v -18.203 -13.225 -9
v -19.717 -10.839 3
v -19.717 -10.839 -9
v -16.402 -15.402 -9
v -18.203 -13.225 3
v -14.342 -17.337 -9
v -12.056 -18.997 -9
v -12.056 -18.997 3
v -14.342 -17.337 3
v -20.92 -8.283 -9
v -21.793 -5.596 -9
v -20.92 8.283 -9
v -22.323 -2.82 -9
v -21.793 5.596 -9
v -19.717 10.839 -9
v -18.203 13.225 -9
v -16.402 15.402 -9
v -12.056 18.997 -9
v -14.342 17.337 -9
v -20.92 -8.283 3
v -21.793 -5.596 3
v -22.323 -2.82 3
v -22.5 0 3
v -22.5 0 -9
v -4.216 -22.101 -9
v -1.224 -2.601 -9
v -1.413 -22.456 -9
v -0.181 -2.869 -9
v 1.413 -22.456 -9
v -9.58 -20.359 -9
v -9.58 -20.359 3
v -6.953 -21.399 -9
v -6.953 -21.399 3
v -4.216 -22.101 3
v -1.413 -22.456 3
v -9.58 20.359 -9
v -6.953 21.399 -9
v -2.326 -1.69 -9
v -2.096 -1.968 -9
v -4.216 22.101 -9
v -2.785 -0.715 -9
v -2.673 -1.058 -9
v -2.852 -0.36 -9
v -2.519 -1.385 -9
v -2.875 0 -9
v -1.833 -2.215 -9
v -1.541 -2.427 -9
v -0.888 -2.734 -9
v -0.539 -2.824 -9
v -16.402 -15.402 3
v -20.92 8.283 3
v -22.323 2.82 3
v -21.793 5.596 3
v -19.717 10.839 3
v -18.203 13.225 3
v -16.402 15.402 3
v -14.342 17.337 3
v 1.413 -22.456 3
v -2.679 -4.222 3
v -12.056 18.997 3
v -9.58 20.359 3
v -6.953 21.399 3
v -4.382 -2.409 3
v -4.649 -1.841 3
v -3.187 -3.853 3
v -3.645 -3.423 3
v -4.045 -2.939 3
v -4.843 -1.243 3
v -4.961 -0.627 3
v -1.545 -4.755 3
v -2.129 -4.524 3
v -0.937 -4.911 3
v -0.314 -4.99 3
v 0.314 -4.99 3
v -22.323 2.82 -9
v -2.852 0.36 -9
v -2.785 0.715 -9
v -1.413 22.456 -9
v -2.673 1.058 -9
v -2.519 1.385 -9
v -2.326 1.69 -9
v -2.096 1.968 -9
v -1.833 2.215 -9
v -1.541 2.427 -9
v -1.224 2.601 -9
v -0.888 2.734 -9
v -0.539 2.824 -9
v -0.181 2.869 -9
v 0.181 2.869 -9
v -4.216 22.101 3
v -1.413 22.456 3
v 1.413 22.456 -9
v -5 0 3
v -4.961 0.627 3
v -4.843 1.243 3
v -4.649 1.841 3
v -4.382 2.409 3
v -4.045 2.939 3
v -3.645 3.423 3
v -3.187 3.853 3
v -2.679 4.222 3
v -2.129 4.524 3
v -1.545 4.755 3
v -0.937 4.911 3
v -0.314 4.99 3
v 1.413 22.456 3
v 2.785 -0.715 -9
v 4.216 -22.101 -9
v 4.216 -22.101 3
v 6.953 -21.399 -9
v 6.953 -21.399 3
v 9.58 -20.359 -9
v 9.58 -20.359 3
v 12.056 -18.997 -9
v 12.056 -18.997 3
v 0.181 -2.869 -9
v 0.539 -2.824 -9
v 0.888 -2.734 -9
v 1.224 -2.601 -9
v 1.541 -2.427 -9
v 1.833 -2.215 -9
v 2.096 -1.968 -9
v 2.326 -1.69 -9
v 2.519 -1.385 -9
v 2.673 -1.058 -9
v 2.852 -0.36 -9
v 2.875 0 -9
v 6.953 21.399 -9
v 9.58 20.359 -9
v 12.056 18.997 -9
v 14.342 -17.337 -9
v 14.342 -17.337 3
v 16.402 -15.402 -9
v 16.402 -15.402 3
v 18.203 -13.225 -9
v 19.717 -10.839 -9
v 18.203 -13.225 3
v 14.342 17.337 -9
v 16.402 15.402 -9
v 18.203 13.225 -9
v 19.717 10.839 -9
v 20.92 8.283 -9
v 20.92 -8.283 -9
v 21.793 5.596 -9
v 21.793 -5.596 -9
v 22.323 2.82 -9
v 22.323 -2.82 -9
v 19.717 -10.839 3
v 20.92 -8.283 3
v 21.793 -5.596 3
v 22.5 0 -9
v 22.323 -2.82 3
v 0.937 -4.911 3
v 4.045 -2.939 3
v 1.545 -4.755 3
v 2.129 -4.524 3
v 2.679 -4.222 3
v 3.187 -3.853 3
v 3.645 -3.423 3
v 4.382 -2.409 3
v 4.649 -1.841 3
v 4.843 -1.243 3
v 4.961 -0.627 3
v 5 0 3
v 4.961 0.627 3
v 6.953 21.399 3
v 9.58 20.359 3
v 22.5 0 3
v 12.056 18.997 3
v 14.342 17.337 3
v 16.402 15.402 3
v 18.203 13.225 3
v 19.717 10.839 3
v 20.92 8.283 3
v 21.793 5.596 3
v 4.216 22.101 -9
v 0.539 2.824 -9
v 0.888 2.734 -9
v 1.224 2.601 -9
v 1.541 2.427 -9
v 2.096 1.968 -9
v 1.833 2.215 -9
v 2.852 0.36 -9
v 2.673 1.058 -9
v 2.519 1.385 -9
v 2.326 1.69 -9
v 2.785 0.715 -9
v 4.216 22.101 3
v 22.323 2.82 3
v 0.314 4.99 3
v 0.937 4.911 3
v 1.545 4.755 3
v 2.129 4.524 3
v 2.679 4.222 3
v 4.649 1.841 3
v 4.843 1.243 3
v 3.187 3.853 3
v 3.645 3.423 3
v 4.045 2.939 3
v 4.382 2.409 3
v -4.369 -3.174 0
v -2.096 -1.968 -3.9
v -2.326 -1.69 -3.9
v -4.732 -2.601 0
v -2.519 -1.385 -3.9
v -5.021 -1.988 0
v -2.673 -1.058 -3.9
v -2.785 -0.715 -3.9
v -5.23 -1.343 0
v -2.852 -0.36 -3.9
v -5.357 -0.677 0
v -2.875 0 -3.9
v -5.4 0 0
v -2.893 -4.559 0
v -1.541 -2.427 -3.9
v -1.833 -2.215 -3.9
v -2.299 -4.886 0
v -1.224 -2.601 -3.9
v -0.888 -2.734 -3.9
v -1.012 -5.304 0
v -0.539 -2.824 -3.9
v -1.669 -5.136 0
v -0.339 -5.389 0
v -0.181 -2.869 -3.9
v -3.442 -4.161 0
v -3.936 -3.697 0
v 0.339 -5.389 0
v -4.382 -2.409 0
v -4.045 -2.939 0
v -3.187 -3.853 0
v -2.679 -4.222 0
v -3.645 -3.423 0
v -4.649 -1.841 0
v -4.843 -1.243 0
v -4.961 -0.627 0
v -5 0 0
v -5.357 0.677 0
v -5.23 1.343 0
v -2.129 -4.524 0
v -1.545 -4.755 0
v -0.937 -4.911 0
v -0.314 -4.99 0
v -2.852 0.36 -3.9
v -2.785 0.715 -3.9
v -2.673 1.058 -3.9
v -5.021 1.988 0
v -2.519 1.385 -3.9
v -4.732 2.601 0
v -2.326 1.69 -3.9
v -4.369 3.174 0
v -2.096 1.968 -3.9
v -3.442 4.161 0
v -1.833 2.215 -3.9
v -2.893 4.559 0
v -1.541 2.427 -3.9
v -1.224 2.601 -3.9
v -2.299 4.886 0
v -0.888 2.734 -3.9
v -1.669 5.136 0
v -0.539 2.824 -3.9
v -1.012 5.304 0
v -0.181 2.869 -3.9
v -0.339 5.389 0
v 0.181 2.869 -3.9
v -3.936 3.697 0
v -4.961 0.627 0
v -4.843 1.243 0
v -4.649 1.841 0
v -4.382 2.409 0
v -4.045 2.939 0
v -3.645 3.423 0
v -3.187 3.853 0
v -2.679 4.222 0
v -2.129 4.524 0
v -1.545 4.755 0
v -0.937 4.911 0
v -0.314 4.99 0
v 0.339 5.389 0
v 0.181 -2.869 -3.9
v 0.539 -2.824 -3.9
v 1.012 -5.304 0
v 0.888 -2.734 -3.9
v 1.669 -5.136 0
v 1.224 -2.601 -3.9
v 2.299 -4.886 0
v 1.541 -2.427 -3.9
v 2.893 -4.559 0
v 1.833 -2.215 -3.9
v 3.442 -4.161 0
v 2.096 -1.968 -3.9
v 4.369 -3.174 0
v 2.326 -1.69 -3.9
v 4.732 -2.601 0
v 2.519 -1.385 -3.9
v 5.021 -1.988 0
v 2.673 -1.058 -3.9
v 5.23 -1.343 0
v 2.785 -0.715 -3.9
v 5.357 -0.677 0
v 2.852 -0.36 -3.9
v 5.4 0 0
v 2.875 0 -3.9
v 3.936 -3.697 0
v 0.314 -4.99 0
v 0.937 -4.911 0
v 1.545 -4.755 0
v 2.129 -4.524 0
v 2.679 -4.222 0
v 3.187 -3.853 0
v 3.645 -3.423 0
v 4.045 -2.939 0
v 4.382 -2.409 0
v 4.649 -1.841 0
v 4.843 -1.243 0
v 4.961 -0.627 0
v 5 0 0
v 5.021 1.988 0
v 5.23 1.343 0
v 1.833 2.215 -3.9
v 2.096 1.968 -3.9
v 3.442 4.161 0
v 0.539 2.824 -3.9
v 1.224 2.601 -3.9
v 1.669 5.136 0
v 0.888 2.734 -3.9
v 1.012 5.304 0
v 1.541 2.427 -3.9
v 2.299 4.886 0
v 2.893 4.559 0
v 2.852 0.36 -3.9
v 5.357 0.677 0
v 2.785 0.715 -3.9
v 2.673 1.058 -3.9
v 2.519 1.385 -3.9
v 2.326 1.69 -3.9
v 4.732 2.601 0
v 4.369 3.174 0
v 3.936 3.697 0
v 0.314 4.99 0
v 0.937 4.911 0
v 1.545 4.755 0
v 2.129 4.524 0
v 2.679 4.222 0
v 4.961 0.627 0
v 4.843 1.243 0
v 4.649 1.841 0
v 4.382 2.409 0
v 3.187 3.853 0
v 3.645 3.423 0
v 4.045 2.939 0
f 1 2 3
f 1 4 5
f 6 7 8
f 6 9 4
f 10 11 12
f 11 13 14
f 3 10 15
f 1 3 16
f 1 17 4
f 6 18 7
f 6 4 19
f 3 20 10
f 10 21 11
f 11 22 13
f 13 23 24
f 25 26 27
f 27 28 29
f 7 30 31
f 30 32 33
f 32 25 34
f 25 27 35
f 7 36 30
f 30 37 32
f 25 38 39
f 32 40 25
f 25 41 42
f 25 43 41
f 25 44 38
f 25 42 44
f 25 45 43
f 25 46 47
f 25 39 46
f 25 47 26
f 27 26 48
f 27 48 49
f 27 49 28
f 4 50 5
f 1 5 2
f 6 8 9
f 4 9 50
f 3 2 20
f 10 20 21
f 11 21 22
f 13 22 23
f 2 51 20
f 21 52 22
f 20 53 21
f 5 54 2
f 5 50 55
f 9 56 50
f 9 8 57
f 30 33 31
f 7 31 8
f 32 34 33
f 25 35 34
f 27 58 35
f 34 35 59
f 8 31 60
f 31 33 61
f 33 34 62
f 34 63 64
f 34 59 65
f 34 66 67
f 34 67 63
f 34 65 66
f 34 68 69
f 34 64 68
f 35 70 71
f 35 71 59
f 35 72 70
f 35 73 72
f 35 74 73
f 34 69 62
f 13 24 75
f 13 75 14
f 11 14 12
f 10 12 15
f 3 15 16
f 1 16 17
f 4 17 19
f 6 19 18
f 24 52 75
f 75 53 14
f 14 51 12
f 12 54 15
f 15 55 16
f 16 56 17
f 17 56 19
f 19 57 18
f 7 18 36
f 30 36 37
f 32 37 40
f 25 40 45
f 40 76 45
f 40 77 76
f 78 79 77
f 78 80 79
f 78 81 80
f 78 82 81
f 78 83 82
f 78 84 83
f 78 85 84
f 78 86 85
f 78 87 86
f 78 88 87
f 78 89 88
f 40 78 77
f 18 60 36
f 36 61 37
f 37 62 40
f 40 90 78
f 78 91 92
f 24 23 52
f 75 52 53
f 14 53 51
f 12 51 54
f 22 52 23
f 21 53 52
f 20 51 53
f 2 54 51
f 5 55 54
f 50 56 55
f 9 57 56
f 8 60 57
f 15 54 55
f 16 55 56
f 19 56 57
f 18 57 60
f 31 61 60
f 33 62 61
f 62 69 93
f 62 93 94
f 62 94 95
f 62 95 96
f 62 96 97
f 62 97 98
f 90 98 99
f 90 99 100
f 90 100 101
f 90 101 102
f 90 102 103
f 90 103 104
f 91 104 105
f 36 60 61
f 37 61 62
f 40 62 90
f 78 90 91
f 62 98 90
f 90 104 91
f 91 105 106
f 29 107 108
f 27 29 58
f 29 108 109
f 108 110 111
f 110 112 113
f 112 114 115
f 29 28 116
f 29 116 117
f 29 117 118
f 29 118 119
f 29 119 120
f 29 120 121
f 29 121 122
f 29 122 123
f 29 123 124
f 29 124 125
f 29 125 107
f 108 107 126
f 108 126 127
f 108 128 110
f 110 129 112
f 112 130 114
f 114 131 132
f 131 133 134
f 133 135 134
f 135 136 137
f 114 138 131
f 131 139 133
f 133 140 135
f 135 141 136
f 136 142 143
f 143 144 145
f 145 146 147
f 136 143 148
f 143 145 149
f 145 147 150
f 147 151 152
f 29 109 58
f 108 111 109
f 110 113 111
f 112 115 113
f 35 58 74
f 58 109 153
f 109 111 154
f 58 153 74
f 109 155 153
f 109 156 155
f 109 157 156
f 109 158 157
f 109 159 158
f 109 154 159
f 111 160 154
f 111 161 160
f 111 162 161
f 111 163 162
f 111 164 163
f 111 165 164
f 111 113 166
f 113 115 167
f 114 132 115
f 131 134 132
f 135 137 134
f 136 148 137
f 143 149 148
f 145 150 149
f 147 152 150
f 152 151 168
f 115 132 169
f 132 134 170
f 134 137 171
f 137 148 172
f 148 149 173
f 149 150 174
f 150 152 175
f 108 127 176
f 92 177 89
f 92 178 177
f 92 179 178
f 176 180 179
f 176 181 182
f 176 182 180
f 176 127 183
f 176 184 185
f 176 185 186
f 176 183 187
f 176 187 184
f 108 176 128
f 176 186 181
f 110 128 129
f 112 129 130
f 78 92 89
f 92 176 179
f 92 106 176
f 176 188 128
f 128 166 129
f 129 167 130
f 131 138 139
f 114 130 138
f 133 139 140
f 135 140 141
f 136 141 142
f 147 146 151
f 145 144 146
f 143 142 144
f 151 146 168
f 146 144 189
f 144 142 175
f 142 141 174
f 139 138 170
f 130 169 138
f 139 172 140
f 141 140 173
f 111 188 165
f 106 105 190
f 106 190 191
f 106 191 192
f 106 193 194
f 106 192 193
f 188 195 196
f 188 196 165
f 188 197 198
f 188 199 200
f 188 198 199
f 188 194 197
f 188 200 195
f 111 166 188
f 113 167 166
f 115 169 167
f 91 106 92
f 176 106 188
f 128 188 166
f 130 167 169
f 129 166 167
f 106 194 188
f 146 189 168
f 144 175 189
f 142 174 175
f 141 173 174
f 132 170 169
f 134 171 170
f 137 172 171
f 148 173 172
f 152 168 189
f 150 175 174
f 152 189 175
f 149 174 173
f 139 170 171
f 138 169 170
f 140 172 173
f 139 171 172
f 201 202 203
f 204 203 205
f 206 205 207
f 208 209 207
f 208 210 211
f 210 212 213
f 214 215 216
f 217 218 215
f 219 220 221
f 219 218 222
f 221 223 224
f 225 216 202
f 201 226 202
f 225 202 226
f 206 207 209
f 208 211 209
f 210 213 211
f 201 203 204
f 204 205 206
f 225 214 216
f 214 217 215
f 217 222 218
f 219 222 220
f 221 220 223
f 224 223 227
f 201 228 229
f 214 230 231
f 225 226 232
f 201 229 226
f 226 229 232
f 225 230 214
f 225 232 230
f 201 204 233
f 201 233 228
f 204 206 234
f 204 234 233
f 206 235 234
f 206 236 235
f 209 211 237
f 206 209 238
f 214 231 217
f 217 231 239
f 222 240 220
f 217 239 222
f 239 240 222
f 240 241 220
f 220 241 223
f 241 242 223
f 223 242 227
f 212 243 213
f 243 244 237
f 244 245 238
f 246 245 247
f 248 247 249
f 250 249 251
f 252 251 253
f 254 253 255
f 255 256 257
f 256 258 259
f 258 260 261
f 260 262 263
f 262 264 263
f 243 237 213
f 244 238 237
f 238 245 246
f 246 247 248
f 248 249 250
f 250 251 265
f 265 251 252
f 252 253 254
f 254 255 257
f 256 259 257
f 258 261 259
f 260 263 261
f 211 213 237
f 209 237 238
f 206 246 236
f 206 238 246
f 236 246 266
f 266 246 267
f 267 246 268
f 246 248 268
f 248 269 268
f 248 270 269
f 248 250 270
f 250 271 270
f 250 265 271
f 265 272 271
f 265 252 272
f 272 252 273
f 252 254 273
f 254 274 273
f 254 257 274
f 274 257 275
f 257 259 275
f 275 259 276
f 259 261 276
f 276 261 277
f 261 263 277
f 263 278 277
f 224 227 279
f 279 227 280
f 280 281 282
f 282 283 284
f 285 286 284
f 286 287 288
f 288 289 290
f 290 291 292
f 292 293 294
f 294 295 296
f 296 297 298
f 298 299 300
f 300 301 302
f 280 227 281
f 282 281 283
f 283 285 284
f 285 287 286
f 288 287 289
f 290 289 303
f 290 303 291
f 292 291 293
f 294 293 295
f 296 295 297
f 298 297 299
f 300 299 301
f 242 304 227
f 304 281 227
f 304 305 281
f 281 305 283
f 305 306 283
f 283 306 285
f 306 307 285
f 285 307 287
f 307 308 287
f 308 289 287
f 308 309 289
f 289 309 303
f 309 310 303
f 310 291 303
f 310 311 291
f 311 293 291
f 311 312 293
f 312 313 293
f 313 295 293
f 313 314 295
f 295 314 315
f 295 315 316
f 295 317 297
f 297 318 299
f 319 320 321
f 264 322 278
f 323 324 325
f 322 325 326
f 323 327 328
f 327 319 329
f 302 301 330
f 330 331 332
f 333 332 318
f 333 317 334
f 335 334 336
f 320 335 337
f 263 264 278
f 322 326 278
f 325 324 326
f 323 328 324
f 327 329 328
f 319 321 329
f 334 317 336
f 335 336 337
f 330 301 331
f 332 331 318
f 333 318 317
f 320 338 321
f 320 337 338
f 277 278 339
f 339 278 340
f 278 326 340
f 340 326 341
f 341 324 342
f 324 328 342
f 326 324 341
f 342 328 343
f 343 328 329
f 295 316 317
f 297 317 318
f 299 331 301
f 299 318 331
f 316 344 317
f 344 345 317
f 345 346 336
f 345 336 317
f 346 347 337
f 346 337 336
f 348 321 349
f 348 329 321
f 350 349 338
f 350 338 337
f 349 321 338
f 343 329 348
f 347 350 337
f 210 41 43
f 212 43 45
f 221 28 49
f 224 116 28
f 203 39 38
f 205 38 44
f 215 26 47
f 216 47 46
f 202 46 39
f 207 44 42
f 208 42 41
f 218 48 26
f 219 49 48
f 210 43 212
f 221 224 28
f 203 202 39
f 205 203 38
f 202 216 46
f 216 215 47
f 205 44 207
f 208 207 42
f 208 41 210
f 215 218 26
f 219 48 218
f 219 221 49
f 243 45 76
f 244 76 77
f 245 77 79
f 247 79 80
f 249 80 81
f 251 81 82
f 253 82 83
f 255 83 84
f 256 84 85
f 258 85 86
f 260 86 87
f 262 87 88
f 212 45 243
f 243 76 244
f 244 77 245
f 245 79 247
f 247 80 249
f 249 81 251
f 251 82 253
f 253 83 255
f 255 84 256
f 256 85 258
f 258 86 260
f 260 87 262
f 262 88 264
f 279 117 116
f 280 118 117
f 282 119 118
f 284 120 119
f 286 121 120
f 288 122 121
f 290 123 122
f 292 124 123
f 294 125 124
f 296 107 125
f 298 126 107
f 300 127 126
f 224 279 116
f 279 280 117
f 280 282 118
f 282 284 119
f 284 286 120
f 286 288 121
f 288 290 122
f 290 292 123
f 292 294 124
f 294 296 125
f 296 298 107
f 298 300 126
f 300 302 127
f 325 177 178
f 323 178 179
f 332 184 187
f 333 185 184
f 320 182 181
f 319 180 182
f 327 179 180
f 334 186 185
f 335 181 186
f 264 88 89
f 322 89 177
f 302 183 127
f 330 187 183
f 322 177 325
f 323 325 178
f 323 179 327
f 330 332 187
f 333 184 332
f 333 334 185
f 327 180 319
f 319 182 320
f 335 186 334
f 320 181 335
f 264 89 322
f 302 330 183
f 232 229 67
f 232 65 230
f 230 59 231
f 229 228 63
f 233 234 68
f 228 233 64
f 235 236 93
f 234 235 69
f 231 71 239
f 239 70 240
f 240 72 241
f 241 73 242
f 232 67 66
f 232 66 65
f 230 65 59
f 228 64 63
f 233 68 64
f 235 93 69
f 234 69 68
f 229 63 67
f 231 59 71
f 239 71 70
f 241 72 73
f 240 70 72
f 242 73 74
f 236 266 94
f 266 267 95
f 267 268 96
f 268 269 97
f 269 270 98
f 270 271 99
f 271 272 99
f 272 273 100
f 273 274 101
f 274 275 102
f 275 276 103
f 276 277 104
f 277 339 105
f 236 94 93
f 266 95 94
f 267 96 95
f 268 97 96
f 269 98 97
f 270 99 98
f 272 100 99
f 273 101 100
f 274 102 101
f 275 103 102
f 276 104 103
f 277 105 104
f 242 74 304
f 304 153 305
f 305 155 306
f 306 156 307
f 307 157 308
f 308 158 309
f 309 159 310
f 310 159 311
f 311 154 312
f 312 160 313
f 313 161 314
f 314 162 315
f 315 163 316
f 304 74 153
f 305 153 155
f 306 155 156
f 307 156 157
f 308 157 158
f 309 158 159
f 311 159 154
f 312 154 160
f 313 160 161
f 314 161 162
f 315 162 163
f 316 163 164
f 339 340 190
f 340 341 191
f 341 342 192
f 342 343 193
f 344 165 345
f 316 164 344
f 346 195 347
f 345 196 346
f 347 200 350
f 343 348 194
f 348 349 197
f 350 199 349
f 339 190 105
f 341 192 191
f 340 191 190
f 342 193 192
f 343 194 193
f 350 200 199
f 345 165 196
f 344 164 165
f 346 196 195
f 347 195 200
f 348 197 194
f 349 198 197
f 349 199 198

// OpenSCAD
$fn = 50;

difference() {
	union() {
		translate(v = [0, 0, -9.0]) {
			cylinder(h = 12, r = 22.5);
		}
		#translate(v = [0, 0, -12.0]) {
			cylinder(h = 12, r = 2.875);
		}
	}
	union() {
		translate(v = [0, 0, 0]) {
			rotate(a = [0, 0, 0]) {
				difference() {
					union() {
						translate(v = [0, 0, -12.0]) {
							cylinder(h = 12, r = 2.6);
						}
						translate(v = [0, 0, -3.9]) {
							cylinder(h = 3.9, r1 = 2.875, r2 = 5.4);
						}
						translate(v = [0, 0, -12.0]) {
							cylinder(h = 12, r = 2.875);
						}
						translate(v = [0, 0, -12.0]) {
							cylinder(h = 12, r = 2.6);
						}
					}
					union();
				}
			}
		}
		#cylinder(h = 3, r = 5.0);
	}
}
